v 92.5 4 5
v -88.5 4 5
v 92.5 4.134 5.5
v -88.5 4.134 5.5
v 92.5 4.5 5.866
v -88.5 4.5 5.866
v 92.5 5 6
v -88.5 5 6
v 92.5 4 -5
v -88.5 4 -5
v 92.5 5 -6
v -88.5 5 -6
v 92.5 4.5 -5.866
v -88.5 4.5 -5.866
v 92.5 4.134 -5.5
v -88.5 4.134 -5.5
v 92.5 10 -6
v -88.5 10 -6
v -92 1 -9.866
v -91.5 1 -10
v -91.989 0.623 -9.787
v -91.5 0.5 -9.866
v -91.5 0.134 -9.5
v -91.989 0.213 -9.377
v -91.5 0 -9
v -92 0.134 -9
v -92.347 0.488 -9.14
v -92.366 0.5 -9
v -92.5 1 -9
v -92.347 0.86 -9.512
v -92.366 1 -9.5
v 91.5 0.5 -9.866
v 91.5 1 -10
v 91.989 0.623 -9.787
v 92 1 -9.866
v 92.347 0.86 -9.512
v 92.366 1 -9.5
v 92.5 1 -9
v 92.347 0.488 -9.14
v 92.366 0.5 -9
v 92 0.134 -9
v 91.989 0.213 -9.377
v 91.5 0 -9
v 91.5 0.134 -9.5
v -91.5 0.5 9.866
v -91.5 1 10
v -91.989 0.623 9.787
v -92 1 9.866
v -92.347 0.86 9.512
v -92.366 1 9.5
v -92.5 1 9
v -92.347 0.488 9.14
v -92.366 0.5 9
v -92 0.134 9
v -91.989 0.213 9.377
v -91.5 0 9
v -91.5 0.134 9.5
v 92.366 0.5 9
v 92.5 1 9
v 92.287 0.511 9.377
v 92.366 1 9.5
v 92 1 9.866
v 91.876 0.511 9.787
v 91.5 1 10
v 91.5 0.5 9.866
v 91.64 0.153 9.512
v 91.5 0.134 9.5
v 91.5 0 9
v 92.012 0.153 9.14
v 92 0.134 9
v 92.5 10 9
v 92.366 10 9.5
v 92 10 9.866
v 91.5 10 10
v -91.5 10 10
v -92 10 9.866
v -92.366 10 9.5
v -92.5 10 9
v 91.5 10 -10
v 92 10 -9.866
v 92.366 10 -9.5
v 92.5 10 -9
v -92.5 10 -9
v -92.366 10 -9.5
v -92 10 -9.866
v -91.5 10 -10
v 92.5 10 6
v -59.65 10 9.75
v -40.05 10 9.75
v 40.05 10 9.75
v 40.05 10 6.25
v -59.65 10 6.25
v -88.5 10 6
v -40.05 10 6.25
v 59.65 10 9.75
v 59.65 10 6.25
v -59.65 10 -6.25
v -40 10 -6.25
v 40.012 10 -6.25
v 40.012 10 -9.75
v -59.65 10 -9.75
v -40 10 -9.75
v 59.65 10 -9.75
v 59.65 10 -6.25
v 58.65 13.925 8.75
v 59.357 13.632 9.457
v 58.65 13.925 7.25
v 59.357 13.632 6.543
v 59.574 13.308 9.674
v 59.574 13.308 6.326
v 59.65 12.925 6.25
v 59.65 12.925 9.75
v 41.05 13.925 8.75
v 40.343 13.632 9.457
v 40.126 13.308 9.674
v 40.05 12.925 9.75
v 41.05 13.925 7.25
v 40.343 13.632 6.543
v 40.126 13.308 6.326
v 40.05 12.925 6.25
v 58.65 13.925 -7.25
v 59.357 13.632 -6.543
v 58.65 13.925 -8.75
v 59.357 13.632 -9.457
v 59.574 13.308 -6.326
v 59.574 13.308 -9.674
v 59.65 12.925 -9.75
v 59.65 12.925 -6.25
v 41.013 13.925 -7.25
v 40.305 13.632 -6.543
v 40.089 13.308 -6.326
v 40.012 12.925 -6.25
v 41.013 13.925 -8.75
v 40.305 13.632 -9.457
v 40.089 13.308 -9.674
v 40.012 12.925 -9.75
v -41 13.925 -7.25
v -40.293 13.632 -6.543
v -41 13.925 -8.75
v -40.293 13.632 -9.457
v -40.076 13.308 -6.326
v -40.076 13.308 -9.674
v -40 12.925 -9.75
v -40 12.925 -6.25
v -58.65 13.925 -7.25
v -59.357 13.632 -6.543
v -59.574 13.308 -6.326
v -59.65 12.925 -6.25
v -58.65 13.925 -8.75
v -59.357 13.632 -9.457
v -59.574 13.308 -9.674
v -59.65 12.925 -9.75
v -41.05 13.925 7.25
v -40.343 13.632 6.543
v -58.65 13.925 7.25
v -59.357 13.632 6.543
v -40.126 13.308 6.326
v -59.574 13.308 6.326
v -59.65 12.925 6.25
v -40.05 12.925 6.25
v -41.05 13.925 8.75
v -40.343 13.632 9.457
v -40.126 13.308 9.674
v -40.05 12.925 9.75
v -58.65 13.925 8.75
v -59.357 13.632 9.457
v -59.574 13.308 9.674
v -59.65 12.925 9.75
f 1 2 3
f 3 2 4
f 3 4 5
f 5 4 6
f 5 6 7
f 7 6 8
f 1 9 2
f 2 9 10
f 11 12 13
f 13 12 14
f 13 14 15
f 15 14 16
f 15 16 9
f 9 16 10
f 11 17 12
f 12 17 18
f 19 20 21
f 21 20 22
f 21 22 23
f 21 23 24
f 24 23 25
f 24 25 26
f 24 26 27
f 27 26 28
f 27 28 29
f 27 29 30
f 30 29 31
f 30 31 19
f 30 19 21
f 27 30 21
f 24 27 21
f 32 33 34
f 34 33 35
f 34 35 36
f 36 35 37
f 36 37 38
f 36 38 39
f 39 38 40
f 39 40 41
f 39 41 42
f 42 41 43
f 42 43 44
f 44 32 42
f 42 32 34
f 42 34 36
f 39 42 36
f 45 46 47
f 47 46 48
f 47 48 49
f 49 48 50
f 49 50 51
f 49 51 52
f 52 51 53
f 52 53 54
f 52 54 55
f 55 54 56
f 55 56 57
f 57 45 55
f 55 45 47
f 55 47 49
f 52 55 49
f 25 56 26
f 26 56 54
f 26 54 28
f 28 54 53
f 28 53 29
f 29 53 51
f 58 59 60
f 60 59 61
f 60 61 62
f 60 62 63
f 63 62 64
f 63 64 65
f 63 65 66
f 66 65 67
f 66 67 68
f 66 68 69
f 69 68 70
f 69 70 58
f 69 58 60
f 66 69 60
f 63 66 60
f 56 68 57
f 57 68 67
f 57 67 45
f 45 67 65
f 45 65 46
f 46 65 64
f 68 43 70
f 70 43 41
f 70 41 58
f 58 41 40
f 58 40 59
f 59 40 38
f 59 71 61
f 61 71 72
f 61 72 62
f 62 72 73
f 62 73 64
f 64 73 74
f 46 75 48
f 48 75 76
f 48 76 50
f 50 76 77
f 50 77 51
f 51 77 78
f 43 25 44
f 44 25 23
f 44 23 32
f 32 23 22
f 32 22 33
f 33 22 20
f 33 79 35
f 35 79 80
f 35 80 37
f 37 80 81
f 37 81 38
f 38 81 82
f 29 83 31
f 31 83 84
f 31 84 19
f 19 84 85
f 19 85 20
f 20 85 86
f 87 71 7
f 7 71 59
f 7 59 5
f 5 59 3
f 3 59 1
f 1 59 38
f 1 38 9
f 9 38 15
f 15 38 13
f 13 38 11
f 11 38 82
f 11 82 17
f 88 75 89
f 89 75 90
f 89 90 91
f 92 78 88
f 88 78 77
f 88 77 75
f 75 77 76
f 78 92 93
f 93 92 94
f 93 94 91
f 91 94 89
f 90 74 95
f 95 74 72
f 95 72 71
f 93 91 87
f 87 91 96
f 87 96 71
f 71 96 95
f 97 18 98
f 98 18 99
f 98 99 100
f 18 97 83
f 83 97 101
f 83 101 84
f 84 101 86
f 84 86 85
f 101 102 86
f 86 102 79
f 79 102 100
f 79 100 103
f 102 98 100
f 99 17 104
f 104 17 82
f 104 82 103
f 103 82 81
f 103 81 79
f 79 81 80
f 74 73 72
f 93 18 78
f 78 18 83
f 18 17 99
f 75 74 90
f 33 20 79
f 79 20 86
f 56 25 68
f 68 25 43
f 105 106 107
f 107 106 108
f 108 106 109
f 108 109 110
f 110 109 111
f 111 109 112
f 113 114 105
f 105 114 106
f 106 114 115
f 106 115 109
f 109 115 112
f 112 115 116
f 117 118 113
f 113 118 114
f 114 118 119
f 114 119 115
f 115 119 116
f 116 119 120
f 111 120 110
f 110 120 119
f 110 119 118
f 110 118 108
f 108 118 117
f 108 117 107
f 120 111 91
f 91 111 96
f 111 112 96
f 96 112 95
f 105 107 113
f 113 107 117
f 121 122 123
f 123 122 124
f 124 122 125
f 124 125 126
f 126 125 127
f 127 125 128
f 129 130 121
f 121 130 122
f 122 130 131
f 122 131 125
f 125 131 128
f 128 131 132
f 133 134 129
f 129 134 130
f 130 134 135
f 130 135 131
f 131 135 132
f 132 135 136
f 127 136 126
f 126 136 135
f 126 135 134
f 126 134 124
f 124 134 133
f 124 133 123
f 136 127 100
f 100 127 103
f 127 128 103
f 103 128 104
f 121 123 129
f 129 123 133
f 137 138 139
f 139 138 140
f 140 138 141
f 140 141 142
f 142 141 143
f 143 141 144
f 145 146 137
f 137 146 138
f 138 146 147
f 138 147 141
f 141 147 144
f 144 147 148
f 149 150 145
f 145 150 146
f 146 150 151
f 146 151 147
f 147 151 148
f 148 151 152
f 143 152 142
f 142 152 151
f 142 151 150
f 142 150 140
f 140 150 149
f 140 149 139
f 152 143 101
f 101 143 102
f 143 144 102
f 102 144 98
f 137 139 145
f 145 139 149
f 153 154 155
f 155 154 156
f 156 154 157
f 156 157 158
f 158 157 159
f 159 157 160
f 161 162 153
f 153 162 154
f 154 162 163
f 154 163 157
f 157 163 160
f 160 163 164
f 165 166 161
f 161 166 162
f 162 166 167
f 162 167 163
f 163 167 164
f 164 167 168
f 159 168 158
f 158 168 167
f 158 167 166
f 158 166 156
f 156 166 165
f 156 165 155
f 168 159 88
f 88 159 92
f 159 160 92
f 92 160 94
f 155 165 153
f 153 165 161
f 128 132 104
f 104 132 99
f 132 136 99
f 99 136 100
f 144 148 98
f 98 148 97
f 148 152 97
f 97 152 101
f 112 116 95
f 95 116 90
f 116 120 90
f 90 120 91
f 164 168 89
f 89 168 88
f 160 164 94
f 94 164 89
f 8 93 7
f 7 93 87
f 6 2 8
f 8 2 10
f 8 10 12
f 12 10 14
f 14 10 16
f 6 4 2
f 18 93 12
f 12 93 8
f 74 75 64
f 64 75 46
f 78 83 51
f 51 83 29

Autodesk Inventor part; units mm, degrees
ref_plane "YZ Plane" through (0, 0, 0) normal (1, 0, 0) x (0, 1, 0)
ref_plane "XZ Plane" through (0, 0, 0) normal (0, 1, 0) x (-1, 0, 0)
ref_plane "XY Plane" through (0, 0, 0) normal (0, 0, 1) x (1, 0, 0)
sketch "Skizze1" plane through (0, 0, 0) normal (0, 1, 0) x (-1, 0, 0)
  line L0 (-92.5, -10) -> (92.5, -10)
  line L1 (92.5, -10) -> (92.5, 10)
  line L2 (92.5, 10) -> (-92.5, 10)
  line L3 (-92.5, 10) -> (-92.5, -10)
  line L4 (-92.5, -10) -> (92.5, 10) construction
  line L5 (92.5, -10) -> (-92.5, 10) construction
  point P0 (0, 0)
  dimension "d0" = 20
  dimension "d1" = 185
extrude "Extrusion1" add sketch "Skizze1" along normal blind 10
sketch "Skizze2" plane through (92.5, 0, 10) normal (1, 0, 0) x (0, 0, -1)
  line L0 (20, 10) -> (0, 10) projected
  line L1 (4, 10) -> (16, 10)
  line L2 (16, 10) -> (16, 4)
  line L3 (16, 4) -> (4, 4)
  line L4 (4, 4) -> (4, 10)
  line L5 (0, 0) -> (0, 10) projected
  line L6 (20, 0) -> (20, 10) projected
  line L7 (0, 0) -> (20, 0) projected
  point P0 (10, 0)
  point P1 (16, 7)
  point P2 (10, 4)
  dimension "d4" = 4
  dimension "d5" = 4
  dimension "d6" = 4
extrude "Extrusion2" cut sketch "Skizze2" against normal blind 181 contours L2 L3 L4 L0
sketch "Skizze3" plane through (0, 10, 0) normal (0, 1, 0) x (1, 0, 0)
  line L0 (-59.65, -9.75) -> (-40.05, -9.75)
  line L1 (-40.05, -9.75) -> (-40.05, -6.25)
  line L2 (-40.05, -6.25) -> (-59.65, -6.25)
  line L3 (-59.65, -6.25) -> (-59.65, -9.75)
  line L4 (-92.5, 10) -> (-92.5, -10) projected
  line L5 (92.5, -6) -> (-88.5, -6) projected
  line L6 (-59.65, 6.25) -> (-40, 6.25)
  line L7 (-40, 6.25) -> (-40, 9.75)
  line L8 (-40, 9.75) -> (-59.65, 9.75)
  line L9 (-59.65, 9.75) -> (-59.65, 6.25)
  line L10 (-88.5, 6) -> (92.5, 6) projected
  line L11 (40.05, -9.75) -> (59.65, -9.75)
  line L12 (59.65, -9.75) -> (59.65, -6.25)
  line L13 (59.65, -6.25) -> (40.05, -6.25)
  line L14 (40.05, -6.25) -> (40.05, -9.75)
  line L15 (92.5, -10) -> (92.5, -6) projected
  line L16 (40.0125, 6.25) -> (59.65, 6.25)
  line L17 (59.65, 6.25) -> (59.65, 9.75)
  line L18 (59.65, 9.75) -> (40.0125, 9.75)
  line L19 (40.0125, 9.75) -> (40.0125, 6.25)
  point P0 (0, 0)
  point P1 (-59.65, -8)
  point P2 (92.5, -8)
  point P3 (59.65, -8)
  dimension "d9" = 3.5
  dimension "d10" = 32.85
  dimension "d11" = 0.25
  dimension "d12" = 19.6
  dimension "d13" = 0.25
  dimension "d14" = 3.5
  dimension "d15" = 32.85
  dimension "d16" = 0.25
  dimension "d17" = 19.6
  dimension "d18" = 3.5
  dimension "d19" = 0.25
  dimension "d20" = 3.5
  dimension "d23" = 0
  dimension "d24" = 0
extrude "Extrusion3" add sketch "Skizze3" along normal blind 3.925
fillet "Rundung1" radius 1 26 edges at (-49.85, 13.925, 9.75) (-49.85, 13.925, 6.25) (-59.65, 13.925, 8) (-40.05, 13.925, 8) (-59.65, 13.925, -8) (-49.825, 13.925, -6.25) (-49.825, 13.925, -9.75) (-40, 13.925, -8) (40.0125, 13.925, -8) (49.8312, 13.925, -9.75) (49.8312, 13.925, -6.25) (59.65, 13.925, -8) (40.05, 13.925, 8) (49.85, 13.925, 9.75) (49.85, 13.925, 6.25) (59.65, 13.925, 8) (92.5, 5, 10) (92.5, 5, -10) (-92.5, 5, -10) (-92.5, 5, 10) (-92.5, 0, 0) (0, 0, 10) (0, 0, -10) (92.5, 0, 0) (2, 4, -6) (2, 4, 6)
properties part number "Kabelschacht 001"
